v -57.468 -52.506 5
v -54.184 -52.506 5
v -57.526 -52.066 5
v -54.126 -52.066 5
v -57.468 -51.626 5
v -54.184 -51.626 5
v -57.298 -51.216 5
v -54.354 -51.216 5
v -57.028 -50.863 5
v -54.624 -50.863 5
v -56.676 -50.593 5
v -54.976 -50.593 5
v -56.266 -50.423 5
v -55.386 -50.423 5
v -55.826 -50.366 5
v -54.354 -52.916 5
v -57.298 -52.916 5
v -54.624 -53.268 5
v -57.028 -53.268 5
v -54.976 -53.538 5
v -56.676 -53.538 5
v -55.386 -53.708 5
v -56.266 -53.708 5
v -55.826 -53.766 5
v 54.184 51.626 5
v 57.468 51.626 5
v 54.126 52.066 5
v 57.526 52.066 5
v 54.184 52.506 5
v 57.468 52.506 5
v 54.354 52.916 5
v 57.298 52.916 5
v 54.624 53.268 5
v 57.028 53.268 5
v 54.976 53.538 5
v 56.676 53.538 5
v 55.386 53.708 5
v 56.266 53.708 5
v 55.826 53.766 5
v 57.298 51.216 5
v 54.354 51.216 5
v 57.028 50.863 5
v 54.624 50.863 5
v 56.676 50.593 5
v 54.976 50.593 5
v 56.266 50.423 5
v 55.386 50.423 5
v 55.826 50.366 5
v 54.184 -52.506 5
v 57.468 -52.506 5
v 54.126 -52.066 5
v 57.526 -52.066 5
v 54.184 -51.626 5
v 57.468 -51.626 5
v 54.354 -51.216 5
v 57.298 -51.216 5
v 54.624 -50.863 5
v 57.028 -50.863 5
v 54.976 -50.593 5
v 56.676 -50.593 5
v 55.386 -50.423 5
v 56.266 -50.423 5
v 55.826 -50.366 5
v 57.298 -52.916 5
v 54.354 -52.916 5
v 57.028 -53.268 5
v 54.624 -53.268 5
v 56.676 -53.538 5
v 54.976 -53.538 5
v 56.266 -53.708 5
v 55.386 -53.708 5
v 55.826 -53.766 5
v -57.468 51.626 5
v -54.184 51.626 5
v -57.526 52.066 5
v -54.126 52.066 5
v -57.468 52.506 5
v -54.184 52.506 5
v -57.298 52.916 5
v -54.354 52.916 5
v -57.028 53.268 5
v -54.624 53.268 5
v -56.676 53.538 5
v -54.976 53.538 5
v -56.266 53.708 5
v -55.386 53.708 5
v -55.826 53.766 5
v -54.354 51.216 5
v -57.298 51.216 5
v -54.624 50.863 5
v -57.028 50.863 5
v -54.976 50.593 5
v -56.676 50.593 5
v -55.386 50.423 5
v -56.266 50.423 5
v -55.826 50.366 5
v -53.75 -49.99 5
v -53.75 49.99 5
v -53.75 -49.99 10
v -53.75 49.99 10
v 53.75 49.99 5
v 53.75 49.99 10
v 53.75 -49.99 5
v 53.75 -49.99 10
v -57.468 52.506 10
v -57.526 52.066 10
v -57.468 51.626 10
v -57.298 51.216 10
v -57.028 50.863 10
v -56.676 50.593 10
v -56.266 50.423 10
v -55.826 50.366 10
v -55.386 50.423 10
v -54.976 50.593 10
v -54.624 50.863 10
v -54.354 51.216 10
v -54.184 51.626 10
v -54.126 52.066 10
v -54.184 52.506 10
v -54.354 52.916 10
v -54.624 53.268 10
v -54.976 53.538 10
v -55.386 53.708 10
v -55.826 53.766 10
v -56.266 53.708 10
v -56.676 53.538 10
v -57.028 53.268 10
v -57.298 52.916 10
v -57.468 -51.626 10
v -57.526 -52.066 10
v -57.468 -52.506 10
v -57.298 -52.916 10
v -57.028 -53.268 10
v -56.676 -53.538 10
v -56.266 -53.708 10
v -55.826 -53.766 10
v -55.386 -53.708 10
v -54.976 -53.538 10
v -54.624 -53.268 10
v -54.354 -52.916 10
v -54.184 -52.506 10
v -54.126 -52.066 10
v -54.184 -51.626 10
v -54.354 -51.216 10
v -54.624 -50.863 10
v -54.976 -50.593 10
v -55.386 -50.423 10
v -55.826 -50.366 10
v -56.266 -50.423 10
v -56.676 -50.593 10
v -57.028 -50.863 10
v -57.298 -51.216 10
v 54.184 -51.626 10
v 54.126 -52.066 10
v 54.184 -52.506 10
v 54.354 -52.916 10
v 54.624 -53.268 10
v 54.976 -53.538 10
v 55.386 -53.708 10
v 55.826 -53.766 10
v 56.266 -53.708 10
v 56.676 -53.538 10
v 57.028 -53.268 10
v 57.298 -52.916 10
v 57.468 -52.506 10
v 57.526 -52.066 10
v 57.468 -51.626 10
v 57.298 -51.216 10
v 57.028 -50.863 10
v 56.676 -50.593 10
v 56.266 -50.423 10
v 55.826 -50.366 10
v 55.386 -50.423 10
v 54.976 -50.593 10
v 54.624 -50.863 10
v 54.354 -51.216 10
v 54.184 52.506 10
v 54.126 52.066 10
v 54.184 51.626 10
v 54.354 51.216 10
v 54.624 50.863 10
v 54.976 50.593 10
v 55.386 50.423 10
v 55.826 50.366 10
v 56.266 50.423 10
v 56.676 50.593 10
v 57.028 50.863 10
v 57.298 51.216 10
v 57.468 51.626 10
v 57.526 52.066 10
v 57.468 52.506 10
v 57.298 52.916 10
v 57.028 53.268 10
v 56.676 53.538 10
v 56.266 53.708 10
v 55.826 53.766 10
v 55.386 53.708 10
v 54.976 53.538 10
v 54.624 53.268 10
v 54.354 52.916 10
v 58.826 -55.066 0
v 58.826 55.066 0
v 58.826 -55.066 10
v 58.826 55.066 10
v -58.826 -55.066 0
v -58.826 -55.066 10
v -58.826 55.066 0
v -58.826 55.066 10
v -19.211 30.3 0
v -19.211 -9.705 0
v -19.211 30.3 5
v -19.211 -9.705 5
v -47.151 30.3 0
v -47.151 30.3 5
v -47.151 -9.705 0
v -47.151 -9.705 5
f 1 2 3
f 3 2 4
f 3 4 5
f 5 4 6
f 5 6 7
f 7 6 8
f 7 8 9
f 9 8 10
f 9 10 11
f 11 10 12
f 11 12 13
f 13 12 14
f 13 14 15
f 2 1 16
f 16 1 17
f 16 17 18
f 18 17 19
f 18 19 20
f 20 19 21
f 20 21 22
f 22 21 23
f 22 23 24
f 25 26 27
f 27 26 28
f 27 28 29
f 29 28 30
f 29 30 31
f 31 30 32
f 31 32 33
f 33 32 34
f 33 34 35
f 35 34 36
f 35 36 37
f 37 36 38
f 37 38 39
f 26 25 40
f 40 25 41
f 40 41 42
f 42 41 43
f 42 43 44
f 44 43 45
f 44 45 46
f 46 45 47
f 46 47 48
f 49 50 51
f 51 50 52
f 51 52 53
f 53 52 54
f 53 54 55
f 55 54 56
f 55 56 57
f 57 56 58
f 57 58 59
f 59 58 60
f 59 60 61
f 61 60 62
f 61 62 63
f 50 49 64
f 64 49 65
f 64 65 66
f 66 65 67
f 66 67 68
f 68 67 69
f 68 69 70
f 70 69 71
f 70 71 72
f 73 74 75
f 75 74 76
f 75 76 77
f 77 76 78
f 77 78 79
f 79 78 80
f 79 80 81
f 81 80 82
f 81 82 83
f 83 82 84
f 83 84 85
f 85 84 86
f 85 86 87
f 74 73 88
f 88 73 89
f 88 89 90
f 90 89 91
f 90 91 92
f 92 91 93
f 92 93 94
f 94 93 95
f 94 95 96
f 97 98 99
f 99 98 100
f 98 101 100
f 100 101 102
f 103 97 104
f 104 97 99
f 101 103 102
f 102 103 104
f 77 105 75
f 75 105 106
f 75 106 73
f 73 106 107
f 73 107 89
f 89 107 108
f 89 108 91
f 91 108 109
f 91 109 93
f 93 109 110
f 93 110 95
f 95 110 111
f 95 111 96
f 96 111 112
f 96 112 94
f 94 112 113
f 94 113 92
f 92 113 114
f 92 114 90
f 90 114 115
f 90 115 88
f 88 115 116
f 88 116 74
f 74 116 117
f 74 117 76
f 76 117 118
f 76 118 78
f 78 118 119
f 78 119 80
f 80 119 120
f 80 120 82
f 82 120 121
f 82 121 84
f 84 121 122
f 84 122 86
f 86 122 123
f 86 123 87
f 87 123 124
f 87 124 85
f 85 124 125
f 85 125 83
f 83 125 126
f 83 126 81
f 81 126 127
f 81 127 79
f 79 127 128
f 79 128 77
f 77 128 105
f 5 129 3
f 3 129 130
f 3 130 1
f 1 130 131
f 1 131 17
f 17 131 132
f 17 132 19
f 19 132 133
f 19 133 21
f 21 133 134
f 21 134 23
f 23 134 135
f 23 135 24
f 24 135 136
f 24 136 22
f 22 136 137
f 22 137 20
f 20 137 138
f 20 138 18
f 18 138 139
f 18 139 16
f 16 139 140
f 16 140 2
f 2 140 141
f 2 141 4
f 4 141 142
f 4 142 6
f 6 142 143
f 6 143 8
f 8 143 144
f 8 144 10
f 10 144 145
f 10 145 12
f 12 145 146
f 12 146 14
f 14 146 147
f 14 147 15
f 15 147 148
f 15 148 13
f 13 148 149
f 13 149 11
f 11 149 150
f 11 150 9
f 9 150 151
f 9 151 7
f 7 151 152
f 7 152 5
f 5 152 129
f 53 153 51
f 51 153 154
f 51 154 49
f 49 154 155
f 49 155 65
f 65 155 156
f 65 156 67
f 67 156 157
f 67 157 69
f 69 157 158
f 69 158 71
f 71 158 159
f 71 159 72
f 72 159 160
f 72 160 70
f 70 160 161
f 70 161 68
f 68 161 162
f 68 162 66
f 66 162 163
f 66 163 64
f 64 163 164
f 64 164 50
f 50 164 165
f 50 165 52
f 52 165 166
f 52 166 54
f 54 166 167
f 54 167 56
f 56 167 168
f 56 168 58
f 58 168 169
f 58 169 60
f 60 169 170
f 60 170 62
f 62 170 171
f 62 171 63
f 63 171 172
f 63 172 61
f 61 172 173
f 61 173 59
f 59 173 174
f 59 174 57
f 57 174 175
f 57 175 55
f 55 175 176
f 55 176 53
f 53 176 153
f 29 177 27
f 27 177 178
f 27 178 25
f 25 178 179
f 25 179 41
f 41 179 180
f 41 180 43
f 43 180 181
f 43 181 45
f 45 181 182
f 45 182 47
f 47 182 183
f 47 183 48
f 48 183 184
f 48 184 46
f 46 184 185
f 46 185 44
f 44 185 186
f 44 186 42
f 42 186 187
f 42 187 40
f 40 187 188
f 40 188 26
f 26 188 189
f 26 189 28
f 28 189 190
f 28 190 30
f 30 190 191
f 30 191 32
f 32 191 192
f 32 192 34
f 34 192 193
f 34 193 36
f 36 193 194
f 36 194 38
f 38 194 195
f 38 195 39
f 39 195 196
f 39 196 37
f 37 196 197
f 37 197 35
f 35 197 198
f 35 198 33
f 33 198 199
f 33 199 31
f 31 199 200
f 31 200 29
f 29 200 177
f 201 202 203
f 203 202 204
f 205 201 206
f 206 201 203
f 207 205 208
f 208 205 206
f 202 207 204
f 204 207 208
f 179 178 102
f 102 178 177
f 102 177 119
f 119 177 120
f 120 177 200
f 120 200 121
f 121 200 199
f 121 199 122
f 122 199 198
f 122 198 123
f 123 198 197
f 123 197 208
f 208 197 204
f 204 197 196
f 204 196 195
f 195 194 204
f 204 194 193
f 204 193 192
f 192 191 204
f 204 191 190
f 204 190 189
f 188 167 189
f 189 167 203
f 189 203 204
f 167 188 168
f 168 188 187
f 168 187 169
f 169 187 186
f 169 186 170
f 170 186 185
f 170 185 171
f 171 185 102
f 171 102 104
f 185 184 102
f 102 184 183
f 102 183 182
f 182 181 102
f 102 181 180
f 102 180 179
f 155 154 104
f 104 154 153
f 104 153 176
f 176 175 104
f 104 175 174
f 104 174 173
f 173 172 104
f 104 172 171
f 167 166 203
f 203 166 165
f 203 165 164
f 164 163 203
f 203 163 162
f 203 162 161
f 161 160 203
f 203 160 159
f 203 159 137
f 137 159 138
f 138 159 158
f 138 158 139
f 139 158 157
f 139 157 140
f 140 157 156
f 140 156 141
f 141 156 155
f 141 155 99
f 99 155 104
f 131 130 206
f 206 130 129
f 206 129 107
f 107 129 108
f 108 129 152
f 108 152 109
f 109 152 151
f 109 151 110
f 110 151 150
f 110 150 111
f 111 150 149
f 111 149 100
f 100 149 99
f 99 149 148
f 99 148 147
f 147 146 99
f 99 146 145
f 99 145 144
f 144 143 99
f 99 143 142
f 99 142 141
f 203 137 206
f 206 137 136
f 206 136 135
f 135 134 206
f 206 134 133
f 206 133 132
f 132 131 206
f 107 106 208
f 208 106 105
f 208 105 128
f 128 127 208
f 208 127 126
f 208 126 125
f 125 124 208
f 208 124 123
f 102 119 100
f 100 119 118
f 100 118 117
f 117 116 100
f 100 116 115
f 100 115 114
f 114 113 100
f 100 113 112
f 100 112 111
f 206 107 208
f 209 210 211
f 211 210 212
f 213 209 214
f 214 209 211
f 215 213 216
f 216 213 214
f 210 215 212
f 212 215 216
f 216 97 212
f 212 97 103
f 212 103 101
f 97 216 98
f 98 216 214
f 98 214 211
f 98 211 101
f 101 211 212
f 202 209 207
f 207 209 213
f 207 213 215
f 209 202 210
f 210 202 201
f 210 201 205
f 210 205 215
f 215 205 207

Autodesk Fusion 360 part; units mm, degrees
sketch "Sketch1" plane through (0, 0, 0) normal (0, 0, 1) x (1, 0, 0)
  line L0 (53.7502, -49.9897) -> (-53.7502, -49.9897)
  line L1 (-53.7502, -49.9897) -> (-53.7502, 49.9897)
  line L2 (-53.7502, 49.9897) -> (53.7502, 49.9897)
  line L3 (53.7502, 49.9897) -> (53.7502, -49.9897)
  line L4 (53.7502, -49.9897) -> (-53.7502, 49.9897) construction
  line L5 (-53.7502, -49.9897) -> (53.7502, 49.9897) construction
  line L6 (58.826, -55.0656) -> (-58.826, -55.0656)
  line L7 (-58.826, -55.0656) -> (-58.826, 55.0656)
  line L8 (-58.826, 55.0656) -> (58.826, 55.0656)
  line L9 (58.826, 55.0656) -> (58.826, -55.0656)
  circle A0 centre (-55.826, 52.0656) radius 1.7
  circle A1 centre (-55.826, 52.0656) radius 1.7
  circle A2 centre (55.826, 52.0656) radius 1.7
  circle A3 centre (55.826, -52.0656) radius 1.7
  circle A4 centre (-55.826, -52.0656) radius 1.7
  line L10 (-47.1513, 30.2997) -> (-19.2113, 30.2997)
  line L11 (-19.2113, 30.2997) -> (-19.2113, -9.7053)
  line L12 (-19.2113, -9.7053) -> (-47.1513, -9.7053)
  line L13 (-47.1513, -9.7053) -> (-47.1513, 30.2997)
  dimension "d1" = 107.5004
  dimension "d2" = 99.9795
  dimension "d3" = -5.0758
  dimension "d4" = 3.4
  dimension "d5" = 3
  dimension "d6" = 3
  dimension "d7" = 3.4
  dimension "d8" = 3.4
  dimension "d9" = 3
  dimension "d10" = 3
  dimension "d11" = 3.4
  dimension "d12" = 3
  dimension "d13" = 3
  dimension "d14" = 3.4
  dimension "d15" = 3
  dimension "d16" = 3
  dimension "d17" = 6.5989
  dimension "d18" = 19.6901
  dimension "d19" = 27.94
  dimension "d20" = 40.005
extrude "Extrude1" add sketch "Sketch1" along normal blind 5 contours L0 L1 L2 L3
extrude "Extrude2" add sketch "Sketch1" along normal blind 10 contours L6 L7 L8 L9
extrude "Extrude3" add sketch "Sketch1" along normal blind 5 contours A0 A1 | A2 | A3 | A4
